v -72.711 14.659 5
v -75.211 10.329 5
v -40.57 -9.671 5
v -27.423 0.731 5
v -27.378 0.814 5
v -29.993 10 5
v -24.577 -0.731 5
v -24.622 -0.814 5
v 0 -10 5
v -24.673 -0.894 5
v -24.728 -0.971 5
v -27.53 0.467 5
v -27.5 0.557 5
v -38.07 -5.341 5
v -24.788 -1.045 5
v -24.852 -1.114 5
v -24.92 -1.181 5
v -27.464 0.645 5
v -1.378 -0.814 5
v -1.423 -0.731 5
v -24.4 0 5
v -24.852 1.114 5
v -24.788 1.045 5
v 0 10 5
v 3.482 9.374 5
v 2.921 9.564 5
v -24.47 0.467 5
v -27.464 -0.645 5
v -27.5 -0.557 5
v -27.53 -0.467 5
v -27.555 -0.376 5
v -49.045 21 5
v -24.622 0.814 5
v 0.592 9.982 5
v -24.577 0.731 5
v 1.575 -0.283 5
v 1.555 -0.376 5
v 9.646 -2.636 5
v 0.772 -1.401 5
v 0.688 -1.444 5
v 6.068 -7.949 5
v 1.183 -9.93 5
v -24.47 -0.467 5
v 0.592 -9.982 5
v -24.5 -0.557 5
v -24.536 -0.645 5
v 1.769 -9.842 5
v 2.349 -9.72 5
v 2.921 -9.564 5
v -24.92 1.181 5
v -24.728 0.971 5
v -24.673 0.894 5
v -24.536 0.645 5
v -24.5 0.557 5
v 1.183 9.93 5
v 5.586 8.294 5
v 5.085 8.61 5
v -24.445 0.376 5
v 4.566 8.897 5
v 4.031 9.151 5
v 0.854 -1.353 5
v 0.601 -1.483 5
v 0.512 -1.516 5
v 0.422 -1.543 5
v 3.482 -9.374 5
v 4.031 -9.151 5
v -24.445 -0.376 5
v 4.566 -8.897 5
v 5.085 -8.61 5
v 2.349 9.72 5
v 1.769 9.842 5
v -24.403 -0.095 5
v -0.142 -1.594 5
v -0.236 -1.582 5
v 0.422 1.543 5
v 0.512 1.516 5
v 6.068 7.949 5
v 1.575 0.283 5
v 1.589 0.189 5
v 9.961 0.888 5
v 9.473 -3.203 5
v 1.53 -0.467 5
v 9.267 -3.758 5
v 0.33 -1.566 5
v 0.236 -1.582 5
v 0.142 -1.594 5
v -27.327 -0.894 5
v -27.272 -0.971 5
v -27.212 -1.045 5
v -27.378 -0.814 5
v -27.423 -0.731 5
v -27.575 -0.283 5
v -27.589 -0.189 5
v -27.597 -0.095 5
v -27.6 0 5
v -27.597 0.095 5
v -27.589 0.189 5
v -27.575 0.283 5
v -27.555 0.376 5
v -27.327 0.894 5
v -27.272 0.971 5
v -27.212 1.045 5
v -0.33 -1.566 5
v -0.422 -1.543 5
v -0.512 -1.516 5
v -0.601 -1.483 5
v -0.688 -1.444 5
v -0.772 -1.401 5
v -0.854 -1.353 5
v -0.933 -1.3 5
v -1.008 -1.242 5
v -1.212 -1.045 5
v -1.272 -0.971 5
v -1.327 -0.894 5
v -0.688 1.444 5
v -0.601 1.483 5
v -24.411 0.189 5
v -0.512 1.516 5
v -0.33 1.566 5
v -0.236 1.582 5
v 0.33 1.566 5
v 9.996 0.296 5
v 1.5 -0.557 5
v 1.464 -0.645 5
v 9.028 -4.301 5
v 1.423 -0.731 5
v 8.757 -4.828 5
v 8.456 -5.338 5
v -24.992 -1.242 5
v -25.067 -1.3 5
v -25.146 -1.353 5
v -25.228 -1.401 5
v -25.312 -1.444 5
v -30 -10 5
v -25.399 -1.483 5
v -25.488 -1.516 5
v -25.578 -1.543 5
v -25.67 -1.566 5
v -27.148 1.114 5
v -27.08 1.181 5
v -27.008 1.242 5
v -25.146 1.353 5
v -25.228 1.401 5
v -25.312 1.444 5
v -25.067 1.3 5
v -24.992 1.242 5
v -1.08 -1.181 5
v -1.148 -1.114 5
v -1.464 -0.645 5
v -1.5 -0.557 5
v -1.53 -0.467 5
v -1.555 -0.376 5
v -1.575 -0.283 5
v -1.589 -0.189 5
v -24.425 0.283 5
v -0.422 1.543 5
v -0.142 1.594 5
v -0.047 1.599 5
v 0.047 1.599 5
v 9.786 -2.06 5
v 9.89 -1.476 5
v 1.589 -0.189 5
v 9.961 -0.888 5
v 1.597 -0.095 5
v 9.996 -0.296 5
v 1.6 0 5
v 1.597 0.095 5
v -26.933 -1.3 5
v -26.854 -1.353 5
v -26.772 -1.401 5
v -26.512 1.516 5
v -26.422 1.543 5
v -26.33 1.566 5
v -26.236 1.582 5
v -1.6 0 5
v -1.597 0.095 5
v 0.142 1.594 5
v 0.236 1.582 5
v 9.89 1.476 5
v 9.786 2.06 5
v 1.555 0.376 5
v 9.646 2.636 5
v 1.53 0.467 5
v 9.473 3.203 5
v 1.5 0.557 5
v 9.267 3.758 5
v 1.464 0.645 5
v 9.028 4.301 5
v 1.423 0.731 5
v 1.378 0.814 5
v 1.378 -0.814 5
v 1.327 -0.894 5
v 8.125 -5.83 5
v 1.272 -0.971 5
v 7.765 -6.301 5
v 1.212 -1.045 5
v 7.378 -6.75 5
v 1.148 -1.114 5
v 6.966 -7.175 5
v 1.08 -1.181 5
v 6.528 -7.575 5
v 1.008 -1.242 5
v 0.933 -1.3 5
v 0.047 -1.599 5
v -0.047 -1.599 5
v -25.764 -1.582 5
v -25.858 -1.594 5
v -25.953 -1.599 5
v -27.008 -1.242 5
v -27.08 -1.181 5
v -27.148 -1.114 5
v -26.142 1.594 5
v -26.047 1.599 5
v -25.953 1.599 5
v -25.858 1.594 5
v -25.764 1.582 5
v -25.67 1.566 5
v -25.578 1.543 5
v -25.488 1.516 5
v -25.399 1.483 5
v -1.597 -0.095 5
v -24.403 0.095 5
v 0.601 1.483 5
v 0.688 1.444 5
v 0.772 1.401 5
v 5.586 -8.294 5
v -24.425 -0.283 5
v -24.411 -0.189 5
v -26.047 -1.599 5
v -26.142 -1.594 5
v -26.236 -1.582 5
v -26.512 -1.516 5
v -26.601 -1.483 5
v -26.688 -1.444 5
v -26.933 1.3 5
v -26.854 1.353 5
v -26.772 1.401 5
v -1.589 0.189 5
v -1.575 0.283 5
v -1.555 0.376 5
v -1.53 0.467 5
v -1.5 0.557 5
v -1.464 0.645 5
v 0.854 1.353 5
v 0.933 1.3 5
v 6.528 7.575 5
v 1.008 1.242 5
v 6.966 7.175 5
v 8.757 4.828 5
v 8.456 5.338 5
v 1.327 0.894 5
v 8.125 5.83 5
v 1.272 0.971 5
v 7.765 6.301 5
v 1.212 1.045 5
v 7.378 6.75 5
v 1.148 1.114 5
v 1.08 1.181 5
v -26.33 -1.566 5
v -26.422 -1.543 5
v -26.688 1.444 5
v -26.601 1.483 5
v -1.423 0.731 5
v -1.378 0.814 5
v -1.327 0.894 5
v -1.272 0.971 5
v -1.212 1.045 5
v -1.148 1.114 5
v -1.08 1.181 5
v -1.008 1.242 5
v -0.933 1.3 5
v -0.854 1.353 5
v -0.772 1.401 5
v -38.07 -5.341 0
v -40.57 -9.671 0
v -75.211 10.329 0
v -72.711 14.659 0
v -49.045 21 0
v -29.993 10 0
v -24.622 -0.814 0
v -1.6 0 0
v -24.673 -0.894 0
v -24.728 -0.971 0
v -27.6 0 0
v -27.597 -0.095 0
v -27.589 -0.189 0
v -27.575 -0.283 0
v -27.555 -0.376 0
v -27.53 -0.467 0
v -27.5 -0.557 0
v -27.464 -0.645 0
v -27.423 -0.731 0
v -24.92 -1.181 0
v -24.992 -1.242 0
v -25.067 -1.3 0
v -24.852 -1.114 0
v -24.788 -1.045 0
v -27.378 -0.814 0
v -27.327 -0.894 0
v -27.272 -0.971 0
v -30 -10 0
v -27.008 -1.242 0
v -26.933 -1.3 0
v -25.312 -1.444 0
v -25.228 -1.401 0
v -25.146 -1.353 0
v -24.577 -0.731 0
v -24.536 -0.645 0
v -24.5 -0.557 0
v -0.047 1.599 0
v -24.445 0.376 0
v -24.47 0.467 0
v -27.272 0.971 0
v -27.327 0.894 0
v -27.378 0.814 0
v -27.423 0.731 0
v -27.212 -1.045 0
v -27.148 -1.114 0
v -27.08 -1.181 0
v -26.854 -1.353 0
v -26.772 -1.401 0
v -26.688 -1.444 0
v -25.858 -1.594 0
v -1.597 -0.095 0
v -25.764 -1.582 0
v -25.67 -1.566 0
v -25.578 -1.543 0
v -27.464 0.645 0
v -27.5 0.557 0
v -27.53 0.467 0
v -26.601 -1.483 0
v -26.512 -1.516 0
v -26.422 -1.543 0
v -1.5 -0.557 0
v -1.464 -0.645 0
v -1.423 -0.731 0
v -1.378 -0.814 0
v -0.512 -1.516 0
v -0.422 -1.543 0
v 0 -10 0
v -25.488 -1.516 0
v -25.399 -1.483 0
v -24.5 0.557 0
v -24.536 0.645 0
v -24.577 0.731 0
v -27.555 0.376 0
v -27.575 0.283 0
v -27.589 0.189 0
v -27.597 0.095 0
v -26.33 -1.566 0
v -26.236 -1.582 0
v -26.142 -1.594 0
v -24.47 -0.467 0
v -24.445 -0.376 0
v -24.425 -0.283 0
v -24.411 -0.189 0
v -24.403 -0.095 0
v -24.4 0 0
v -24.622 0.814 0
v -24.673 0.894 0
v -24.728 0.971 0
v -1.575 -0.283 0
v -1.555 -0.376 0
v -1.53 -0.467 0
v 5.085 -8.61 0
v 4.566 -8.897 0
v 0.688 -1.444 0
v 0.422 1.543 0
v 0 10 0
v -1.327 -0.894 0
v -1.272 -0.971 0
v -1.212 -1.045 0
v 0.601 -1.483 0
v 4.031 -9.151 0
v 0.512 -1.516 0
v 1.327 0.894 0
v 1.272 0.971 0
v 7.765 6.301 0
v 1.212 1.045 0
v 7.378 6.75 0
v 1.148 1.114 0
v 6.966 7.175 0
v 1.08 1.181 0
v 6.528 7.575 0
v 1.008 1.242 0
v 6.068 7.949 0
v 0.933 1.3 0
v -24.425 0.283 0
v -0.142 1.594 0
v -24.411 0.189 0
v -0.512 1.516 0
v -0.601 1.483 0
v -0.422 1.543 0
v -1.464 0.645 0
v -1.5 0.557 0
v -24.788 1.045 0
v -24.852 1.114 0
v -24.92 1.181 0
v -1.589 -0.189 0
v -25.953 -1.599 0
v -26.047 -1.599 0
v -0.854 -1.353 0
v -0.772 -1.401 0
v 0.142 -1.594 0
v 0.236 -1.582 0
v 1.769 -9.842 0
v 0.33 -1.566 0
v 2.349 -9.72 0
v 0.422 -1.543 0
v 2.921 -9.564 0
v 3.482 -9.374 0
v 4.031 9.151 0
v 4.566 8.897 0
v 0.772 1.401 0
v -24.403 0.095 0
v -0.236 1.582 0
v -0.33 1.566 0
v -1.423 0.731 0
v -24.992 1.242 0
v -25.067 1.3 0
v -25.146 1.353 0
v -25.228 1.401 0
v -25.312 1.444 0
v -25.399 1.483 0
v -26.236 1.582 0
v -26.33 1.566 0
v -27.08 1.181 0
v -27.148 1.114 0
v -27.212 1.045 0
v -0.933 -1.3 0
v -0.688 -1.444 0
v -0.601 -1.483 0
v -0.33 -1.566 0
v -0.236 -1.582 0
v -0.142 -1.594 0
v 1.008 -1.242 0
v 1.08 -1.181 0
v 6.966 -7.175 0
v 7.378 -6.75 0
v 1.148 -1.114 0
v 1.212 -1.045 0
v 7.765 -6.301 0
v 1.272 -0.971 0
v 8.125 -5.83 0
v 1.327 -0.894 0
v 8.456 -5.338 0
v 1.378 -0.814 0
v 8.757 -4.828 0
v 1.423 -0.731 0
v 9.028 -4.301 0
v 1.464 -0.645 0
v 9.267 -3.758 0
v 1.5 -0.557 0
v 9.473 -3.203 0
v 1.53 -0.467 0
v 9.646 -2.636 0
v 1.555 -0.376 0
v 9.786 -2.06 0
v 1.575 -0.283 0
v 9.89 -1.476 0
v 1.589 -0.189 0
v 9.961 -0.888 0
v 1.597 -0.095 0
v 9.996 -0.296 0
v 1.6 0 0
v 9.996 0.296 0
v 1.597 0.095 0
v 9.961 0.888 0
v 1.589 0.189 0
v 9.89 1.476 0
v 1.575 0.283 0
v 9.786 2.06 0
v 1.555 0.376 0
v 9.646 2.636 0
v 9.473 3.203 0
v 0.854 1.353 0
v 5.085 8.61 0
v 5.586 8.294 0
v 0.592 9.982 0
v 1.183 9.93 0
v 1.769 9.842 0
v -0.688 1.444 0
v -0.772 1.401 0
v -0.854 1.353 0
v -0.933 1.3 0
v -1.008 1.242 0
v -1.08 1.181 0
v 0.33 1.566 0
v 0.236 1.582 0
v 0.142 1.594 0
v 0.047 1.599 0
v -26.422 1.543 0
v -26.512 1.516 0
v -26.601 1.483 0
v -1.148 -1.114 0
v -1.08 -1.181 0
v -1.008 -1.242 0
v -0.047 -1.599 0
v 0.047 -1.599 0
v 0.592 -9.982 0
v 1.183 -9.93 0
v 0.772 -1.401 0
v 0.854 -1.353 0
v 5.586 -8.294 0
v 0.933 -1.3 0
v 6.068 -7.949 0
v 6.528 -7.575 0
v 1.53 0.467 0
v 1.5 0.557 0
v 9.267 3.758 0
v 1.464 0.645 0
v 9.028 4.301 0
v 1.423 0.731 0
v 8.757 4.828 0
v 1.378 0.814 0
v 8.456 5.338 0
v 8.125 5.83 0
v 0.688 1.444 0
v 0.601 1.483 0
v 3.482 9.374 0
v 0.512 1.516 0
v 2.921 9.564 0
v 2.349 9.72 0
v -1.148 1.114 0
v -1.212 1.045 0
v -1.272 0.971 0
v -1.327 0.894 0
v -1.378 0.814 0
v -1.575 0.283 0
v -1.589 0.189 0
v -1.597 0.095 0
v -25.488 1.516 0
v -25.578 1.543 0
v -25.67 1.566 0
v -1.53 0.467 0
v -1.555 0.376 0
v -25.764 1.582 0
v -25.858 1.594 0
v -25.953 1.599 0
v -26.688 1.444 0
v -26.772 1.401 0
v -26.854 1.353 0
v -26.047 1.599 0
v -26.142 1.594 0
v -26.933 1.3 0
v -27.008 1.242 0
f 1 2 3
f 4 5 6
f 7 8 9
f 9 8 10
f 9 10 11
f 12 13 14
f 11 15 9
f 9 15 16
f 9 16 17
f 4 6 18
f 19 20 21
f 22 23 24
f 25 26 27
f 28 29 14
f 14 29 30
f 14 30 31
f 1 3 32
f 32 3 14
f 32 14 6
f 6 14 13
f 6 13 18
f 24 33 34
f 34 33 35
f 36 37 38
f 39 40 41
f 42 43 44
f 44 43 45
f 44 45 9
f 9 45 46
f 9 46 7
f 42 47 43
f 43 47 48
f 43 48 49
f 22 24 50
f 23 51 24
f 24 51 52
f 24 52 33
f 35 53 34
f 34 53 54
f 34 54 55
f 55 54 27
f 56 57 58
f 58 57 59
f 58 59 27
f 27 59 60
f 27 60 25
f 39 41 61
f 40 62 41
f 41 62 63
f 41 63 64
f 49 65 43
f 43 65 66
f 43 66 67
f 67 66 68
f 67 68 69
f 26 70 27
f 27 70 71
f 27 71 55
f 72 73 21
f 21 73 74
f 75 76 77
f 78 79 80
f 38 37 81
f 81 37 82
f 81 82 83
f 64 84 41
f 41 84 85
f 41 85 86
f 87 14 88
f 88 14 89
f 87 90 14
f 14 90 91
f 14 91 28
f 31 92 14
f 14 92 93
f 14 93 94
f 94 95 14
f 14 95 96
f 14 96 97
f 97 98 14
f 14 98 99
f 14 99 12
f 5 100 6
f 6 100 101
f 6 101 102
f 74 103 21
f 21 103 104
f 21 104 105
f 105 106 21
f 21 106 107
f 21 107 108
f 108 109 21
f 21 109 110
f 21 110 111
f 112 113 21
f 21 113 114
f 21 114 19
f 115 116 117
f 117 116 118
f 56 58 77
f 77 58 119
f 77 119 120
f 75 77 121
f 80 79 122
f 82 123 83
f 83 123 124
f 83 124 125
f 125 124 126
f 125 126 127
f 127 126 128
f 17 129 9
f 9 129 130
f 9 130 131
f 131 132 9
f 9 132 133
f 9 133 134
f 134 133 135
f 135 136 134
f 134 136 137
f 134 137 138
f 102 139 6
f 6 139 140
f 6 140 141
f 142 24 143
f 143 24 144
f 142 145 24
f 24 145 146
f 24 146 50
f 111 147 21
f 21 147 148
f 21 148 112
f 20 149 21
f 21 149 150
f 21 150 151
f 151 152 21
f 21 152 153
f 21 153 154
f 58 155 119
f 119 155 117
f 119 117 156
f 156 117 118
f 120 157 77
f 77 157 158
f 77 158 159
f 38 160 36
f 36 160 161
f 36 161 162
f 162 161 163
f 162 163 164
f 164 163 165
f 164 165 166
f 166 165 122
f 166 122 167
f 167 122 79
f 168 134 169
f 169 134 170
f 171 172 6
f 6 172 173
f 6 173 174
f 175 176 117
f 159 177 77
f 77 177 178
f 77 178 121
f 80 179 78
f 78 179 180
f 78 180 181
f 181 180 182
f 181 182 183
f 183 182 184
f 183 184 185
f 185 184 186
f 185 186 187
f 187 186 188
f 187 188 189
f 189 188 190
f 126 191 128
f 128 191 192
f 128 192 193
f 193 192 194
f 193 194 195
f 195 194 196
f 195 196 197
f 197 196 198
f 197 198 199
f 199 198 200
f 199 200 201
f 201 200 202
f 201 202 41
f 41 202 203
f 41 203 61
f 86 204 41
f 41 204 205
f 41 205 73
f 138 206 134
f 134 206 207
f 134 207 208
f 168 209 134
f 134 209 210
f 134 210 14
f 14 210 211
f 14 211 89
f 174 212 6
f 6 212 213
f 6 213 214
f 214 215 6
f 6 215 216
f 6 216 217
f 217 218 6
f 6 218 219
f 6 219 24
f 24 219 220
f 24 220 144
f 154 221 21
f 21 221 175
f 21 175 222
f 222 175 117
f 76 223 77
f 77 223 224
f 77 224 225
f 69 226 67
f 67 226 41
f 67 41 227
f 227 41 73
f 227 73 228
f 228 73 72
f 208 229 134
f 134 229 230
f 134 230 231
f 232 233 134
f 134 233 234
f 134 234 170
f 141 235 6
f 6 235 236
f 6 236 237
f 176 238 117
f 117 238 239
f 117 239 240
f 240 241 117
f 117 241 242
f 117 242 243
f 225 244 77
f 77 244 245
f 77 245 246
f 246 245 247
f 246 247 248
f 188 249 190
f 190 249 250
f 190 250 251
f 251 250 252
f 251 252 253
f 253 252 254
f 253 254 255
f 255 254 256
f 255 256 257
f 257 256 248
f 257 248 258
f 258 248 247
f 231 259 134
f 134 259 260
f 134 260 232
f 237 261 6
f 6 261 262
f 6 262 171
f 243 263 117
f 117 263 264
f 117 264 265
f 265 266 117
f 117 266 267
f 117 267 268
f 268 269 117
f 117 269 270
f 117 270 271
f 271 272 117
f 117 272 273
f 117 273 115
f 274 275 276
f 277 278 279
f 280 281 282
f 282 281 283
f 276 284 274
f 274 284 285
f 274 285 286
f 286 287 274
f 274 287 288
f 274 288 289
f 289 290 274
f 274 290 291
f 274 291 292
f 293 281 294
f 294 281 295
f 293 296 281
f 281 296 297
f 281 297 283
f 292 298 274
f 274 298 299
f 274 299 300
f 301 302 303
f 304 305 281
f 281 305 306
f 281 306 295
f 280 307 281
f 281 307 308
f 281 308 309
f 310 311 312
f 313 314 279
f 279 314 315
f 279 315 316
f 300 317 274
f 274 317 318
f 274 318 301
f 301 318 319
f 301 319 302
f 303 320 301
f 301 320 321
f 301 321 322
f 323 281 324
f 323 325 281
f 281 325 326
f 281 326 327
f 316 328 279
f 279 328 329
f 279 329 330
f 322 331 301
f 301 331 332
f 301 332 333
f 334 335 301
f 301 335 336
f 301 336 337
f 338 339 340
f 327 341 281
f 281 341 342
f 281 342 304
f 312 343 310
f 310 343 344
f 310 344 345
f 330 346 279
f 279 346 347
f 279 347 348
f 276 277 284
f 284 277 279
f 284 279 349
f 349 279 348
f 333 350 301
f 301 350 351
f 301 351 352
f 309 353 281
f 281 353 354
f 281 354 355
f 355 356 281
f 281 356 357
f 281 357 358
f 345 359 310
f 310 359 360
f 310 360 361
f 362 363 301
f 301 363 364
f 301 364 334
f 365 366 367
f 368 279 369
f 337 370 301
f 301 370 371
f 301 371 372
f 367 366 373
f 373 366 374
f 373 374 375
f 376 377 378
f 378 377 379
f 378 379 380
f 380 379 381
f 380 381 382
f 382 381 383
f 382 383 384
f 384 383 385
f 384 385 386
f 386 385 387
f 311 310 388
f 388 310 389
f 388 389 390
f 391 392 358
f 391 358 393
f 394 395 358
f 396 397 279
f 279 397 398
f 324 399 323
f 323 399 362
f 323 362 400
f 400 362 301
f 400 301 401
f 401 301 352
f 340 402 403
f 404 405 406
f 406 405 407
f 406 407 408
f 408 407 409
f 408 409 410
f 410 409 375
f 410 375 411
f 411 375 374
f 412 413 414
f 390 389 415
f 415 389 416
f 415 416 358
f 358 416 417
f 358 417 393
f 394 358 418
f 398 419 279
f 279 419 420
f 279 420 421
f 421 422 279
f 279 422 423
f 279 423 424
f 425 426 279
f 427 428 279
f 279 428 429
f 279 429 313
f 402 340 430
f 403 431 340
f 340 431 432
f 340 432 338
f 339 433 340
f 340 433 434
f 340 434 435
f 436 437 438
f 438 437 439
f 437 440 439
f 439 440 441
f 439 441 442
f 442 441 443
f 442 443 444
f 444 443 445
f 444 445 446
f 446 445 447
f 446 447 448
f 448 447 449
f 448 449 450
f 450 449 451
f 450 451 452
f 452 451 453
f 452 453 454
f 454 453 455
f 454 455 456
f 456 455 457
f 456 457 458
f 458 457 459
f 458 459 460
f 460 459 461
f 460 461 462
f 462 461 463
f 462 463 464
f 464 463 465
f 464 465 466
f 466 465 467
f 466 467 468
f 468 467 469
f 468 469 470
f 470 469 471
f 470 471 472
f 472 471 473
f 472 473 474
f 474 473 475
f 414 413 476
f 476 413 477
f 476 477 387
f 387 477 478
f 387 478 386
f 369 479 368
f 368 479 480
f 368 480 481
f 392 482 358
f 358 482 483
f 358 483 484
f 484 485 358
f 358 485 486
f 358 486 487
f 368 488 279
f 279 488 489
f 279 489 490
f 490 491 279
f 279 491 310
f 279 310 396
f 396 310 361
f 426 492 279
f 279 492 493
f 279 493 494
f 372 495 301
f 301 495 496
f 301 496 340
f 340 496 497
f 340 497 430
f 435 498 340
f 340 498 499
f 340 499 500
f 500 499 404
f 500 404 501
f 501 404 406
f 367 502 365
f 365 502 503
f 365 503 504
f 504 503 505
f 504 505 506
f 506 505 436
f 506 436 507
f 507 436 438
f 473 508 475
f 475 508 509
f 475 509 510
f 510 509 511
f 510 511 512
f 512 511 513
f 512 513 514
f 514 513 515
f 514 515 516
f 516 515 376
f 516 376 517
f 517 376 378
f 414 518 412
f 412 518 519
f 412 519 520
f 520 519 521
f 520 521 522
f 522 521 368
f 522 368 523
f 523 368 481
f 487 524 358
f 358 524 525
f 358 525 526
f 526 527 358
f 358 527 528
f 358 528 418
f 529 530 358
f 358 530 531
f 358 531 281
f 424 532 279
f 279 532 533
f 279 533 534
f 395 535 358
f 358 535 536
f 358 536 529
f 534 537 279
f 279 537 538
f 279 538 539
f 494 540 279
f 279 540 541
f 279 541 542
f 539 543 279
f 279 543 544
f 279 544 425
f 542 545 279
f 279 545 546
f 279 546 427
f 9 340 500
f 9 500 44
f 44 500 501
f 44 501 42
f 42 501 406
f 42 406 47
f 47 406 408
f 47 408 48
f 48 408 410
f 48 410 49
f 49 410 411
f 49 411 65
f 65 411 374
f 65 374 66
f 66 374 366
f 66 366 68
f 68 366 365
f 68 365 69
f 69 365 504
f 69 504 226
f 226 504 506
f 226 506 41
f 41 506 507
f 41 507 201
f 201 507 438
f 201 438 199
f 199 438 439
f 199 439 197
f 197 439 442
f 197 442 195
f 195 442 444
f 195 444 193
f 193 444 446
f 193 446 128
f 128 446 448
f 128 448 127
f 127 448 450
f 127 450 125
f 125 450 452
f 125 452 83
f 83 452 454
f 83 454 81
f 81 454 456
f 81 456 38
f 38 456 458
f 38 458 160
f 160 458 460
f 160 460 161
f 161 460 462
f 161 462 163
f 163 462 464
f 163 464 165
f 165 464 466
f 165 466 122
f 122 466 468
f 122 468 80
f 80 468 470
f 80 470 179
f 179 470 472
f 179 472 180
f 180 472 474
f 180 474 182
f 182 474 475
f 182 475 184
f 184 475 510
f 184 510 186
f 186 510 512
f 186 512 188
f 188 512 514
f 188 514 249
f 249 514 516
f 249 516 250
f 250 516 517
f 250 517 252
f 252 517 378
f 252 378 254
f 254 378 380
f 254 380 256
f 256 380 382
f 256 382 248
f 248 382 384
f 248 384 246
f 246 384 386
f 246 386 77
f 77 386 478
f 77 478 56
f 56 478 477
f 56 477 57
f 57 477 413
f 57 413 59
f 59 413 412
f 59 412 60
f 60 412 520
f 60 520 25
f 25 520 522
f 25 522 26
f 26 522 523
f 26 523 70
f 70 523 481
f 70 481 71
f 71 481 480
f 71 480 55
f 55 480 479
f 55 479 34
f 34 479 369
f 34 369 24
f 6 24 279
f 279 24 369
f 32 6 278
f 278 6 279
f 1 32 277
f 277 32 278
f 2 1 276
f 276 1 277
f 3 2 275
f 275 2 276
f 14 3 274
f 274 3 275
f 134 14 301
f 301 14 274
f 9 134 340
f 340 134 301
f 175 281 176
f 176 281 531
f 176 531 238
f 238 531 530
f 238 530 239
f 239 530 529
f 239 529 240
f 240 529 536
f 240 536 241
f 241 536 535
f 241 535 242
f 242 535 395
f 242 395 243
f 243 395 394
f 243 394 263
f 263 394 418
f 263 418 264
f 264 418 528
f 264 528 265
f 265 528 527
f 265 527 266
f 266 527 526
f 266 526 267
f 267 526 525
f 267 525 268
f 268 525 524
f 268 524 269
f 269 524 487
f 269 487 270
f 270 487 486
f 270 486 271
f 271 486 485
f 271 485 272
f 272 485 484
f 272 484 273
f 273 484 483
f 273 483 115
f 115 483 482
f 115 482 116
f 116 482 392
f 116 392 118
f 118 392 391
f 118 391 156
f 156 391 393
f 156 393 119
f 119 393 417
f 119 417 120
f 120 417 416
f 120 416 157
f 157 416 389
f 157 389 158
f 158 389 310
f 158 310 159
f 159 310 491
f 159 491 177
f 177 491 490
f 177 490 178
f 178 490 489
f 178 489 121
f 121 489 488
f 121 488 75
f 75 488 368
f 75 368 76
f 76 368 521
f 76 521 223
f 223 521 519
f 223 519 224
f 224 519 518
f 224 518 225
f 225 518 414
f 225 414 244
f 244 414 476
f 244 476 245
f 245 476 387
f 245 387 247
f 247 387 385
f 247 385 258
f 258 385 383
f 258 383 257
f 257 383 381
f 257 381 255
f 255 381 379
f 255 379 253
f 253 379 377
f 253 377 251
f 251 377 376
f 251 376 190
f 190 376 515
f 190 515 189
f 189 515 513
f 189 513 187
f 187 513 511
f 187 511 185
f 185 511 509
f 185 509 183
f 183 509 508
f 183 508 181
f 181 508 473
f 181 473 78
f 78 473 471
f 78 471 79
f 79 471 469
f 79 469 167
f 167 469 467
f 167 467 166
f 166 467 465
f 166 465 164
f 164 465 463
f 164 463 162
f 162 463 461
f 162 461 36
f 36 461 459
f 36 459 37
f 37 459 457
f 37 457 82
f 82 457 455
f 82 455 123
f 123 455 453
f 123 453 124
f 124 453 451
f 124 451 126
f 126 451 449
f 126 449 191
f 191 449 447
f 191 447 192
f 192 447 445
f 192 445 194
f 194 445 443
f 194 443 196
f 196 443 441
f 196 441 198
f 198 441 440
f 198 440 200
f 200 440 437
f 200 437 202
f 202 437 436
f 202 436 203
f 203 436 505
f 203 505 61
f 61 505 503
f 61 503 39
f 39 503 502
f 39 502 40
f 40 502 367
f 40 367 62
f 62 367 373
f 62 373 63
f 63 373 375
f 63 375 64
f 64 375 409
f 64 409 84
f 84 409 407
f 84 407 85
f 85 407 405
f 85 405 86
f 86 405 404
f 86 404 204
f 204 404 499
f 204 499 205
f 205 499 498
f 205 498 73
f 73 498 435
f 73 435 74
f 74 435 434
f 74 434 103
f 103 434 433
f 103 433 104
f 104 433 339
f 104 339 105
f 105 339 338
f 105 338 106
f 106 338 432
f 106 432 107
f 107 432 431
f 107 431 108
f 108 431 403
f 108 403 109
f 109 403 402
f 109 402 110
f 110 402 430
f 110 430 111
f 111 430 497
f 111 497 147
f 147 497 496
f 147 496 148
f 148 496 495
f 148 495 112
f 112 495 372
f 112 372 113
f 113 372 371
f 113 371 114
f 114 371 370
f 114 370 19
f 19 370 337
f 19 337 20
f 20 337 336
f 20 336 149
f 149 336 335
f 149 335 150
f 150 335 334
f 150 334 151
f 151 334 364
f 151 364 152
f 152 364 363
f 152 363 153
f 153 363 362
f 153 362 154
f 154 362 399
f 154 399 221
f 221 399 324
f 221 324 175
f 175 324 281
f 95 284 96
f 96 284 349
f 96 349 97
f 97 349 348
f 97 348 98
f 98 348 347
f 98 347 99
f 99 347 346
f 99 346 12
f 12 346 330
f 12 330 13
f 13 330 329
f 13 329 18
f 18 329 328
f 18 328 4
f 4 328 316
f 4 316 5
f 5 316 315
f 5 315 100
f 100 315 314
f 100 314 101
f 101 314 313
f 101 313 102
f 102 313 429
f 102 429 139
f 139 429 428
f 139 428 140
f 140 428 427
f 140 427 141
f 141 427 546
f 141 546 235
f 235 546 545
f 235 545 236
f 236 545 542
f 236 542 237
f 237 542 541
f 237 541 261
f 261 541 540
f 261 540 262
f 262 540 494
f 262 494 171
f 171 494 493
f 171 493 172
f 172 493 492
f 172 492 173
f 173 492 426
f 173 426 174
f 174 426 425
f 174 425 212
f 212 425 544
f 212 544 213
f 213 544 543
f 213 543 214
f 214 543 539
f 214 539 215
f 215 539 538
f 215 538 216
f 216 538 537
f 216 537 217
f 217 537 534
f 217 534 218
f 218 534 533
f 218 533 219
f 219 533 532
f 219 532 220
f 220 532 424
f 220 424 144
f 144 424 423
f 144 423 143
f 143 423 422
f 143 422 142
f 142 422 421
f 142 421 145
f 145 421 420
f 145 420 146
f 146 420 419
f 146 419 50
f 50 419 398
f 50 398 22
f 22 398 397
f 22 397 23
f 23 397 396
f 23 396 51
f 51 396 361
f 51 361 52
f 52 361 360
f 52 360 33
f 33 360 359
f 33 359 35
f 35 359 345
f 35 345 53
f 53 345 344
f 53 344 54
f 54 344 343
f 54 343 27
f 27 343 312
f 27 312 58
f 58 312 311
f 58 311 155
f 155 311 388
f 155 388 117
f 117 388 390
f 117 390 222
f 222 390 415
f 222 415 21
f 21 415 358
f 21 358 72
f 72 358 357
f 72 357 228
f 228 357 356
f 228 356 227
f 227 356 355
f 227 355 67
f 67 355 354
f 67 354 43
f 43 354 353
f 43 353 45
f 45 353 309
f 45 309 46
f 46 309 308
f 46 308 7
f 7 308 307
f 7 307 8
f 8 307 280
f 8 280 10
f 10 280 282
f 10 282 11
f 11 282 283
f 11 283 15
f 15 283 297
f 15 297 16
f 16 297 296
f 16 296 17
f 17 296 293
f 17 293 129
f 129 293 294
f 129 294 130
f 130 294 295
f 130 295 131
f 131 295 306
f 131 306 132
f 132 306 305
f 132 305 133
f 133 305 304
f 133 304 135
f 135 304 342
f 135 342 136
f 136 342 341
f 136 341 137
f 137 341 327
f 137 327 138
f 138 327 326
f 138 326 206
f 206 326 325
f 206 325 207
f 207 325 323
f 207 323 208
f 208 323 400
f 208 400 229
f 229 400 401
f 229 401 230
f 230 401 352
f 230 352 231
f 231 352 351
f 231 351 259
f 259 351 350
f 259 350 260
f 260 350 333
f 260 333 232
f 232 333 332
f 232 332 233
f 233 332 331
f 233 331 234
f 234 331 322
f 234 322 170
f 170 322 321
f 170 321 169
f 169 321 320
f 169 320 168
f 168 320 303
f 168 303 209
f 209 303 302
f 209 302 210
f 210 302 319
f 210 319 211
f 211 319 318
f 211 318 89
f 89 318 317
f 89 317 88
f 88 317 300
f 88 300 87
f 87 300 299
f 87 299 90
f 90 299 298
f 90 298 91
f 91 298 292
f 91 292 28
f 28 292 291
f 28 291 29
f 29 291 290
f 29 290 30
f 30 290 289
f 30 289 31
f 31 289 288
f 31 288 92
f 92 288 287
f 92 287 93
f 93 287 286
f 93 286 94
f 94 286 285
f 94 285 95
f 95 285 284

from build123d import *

# Parameters (mm, degrees)
SKETCH2_R           = 1.6
BOSS_EXTRUDE1_DEPTH = 5


with BuildPart() as part:
    # Sketch2 → Boss-Extrude1 (new body)
    with BuildSketch(Plane(origin=(0, 0, 0), x_dir=(0, 1, 0), z_dir=(0, 0, 1))):
        with BuildLine():
            Line((-10, 0), (-10, 30))
            Line((-10, 30), (-5.341066605, 38.069509349))
            Line((-5.341066605, 38.069509349), (-9.671193624, 40.569509349))
            Line((-9.671193624, 40.569509349), (10.328806376, 75.210525501))
            Line((10.328806376, 75.210525501), (14.658933395, 72.710525501))
            Line((14.658933395, 72.710525501), (21, 49.045342756))
            Line((21, 49.045342756), (10, 29.992783873))
            Line((10, 29.992783873), (10, 0))
            ThreePointArc((10, 0), (0, -10), (-10, 0))
        make_face()
        with Locations(Location((0, 0, 0), (0, 0, 270))):
            Circle(SKETCH2_R, mode=Mode.SUBTRACT)
        with Locations(Location((0, 26, 0), (0, 0, 270))):
            Circle(SKETCH2_R, mode=Mode.SUBTRACT)
    extrude(amount=BOSS_EXTRUDE1_DEPTH)


solid = part.part
